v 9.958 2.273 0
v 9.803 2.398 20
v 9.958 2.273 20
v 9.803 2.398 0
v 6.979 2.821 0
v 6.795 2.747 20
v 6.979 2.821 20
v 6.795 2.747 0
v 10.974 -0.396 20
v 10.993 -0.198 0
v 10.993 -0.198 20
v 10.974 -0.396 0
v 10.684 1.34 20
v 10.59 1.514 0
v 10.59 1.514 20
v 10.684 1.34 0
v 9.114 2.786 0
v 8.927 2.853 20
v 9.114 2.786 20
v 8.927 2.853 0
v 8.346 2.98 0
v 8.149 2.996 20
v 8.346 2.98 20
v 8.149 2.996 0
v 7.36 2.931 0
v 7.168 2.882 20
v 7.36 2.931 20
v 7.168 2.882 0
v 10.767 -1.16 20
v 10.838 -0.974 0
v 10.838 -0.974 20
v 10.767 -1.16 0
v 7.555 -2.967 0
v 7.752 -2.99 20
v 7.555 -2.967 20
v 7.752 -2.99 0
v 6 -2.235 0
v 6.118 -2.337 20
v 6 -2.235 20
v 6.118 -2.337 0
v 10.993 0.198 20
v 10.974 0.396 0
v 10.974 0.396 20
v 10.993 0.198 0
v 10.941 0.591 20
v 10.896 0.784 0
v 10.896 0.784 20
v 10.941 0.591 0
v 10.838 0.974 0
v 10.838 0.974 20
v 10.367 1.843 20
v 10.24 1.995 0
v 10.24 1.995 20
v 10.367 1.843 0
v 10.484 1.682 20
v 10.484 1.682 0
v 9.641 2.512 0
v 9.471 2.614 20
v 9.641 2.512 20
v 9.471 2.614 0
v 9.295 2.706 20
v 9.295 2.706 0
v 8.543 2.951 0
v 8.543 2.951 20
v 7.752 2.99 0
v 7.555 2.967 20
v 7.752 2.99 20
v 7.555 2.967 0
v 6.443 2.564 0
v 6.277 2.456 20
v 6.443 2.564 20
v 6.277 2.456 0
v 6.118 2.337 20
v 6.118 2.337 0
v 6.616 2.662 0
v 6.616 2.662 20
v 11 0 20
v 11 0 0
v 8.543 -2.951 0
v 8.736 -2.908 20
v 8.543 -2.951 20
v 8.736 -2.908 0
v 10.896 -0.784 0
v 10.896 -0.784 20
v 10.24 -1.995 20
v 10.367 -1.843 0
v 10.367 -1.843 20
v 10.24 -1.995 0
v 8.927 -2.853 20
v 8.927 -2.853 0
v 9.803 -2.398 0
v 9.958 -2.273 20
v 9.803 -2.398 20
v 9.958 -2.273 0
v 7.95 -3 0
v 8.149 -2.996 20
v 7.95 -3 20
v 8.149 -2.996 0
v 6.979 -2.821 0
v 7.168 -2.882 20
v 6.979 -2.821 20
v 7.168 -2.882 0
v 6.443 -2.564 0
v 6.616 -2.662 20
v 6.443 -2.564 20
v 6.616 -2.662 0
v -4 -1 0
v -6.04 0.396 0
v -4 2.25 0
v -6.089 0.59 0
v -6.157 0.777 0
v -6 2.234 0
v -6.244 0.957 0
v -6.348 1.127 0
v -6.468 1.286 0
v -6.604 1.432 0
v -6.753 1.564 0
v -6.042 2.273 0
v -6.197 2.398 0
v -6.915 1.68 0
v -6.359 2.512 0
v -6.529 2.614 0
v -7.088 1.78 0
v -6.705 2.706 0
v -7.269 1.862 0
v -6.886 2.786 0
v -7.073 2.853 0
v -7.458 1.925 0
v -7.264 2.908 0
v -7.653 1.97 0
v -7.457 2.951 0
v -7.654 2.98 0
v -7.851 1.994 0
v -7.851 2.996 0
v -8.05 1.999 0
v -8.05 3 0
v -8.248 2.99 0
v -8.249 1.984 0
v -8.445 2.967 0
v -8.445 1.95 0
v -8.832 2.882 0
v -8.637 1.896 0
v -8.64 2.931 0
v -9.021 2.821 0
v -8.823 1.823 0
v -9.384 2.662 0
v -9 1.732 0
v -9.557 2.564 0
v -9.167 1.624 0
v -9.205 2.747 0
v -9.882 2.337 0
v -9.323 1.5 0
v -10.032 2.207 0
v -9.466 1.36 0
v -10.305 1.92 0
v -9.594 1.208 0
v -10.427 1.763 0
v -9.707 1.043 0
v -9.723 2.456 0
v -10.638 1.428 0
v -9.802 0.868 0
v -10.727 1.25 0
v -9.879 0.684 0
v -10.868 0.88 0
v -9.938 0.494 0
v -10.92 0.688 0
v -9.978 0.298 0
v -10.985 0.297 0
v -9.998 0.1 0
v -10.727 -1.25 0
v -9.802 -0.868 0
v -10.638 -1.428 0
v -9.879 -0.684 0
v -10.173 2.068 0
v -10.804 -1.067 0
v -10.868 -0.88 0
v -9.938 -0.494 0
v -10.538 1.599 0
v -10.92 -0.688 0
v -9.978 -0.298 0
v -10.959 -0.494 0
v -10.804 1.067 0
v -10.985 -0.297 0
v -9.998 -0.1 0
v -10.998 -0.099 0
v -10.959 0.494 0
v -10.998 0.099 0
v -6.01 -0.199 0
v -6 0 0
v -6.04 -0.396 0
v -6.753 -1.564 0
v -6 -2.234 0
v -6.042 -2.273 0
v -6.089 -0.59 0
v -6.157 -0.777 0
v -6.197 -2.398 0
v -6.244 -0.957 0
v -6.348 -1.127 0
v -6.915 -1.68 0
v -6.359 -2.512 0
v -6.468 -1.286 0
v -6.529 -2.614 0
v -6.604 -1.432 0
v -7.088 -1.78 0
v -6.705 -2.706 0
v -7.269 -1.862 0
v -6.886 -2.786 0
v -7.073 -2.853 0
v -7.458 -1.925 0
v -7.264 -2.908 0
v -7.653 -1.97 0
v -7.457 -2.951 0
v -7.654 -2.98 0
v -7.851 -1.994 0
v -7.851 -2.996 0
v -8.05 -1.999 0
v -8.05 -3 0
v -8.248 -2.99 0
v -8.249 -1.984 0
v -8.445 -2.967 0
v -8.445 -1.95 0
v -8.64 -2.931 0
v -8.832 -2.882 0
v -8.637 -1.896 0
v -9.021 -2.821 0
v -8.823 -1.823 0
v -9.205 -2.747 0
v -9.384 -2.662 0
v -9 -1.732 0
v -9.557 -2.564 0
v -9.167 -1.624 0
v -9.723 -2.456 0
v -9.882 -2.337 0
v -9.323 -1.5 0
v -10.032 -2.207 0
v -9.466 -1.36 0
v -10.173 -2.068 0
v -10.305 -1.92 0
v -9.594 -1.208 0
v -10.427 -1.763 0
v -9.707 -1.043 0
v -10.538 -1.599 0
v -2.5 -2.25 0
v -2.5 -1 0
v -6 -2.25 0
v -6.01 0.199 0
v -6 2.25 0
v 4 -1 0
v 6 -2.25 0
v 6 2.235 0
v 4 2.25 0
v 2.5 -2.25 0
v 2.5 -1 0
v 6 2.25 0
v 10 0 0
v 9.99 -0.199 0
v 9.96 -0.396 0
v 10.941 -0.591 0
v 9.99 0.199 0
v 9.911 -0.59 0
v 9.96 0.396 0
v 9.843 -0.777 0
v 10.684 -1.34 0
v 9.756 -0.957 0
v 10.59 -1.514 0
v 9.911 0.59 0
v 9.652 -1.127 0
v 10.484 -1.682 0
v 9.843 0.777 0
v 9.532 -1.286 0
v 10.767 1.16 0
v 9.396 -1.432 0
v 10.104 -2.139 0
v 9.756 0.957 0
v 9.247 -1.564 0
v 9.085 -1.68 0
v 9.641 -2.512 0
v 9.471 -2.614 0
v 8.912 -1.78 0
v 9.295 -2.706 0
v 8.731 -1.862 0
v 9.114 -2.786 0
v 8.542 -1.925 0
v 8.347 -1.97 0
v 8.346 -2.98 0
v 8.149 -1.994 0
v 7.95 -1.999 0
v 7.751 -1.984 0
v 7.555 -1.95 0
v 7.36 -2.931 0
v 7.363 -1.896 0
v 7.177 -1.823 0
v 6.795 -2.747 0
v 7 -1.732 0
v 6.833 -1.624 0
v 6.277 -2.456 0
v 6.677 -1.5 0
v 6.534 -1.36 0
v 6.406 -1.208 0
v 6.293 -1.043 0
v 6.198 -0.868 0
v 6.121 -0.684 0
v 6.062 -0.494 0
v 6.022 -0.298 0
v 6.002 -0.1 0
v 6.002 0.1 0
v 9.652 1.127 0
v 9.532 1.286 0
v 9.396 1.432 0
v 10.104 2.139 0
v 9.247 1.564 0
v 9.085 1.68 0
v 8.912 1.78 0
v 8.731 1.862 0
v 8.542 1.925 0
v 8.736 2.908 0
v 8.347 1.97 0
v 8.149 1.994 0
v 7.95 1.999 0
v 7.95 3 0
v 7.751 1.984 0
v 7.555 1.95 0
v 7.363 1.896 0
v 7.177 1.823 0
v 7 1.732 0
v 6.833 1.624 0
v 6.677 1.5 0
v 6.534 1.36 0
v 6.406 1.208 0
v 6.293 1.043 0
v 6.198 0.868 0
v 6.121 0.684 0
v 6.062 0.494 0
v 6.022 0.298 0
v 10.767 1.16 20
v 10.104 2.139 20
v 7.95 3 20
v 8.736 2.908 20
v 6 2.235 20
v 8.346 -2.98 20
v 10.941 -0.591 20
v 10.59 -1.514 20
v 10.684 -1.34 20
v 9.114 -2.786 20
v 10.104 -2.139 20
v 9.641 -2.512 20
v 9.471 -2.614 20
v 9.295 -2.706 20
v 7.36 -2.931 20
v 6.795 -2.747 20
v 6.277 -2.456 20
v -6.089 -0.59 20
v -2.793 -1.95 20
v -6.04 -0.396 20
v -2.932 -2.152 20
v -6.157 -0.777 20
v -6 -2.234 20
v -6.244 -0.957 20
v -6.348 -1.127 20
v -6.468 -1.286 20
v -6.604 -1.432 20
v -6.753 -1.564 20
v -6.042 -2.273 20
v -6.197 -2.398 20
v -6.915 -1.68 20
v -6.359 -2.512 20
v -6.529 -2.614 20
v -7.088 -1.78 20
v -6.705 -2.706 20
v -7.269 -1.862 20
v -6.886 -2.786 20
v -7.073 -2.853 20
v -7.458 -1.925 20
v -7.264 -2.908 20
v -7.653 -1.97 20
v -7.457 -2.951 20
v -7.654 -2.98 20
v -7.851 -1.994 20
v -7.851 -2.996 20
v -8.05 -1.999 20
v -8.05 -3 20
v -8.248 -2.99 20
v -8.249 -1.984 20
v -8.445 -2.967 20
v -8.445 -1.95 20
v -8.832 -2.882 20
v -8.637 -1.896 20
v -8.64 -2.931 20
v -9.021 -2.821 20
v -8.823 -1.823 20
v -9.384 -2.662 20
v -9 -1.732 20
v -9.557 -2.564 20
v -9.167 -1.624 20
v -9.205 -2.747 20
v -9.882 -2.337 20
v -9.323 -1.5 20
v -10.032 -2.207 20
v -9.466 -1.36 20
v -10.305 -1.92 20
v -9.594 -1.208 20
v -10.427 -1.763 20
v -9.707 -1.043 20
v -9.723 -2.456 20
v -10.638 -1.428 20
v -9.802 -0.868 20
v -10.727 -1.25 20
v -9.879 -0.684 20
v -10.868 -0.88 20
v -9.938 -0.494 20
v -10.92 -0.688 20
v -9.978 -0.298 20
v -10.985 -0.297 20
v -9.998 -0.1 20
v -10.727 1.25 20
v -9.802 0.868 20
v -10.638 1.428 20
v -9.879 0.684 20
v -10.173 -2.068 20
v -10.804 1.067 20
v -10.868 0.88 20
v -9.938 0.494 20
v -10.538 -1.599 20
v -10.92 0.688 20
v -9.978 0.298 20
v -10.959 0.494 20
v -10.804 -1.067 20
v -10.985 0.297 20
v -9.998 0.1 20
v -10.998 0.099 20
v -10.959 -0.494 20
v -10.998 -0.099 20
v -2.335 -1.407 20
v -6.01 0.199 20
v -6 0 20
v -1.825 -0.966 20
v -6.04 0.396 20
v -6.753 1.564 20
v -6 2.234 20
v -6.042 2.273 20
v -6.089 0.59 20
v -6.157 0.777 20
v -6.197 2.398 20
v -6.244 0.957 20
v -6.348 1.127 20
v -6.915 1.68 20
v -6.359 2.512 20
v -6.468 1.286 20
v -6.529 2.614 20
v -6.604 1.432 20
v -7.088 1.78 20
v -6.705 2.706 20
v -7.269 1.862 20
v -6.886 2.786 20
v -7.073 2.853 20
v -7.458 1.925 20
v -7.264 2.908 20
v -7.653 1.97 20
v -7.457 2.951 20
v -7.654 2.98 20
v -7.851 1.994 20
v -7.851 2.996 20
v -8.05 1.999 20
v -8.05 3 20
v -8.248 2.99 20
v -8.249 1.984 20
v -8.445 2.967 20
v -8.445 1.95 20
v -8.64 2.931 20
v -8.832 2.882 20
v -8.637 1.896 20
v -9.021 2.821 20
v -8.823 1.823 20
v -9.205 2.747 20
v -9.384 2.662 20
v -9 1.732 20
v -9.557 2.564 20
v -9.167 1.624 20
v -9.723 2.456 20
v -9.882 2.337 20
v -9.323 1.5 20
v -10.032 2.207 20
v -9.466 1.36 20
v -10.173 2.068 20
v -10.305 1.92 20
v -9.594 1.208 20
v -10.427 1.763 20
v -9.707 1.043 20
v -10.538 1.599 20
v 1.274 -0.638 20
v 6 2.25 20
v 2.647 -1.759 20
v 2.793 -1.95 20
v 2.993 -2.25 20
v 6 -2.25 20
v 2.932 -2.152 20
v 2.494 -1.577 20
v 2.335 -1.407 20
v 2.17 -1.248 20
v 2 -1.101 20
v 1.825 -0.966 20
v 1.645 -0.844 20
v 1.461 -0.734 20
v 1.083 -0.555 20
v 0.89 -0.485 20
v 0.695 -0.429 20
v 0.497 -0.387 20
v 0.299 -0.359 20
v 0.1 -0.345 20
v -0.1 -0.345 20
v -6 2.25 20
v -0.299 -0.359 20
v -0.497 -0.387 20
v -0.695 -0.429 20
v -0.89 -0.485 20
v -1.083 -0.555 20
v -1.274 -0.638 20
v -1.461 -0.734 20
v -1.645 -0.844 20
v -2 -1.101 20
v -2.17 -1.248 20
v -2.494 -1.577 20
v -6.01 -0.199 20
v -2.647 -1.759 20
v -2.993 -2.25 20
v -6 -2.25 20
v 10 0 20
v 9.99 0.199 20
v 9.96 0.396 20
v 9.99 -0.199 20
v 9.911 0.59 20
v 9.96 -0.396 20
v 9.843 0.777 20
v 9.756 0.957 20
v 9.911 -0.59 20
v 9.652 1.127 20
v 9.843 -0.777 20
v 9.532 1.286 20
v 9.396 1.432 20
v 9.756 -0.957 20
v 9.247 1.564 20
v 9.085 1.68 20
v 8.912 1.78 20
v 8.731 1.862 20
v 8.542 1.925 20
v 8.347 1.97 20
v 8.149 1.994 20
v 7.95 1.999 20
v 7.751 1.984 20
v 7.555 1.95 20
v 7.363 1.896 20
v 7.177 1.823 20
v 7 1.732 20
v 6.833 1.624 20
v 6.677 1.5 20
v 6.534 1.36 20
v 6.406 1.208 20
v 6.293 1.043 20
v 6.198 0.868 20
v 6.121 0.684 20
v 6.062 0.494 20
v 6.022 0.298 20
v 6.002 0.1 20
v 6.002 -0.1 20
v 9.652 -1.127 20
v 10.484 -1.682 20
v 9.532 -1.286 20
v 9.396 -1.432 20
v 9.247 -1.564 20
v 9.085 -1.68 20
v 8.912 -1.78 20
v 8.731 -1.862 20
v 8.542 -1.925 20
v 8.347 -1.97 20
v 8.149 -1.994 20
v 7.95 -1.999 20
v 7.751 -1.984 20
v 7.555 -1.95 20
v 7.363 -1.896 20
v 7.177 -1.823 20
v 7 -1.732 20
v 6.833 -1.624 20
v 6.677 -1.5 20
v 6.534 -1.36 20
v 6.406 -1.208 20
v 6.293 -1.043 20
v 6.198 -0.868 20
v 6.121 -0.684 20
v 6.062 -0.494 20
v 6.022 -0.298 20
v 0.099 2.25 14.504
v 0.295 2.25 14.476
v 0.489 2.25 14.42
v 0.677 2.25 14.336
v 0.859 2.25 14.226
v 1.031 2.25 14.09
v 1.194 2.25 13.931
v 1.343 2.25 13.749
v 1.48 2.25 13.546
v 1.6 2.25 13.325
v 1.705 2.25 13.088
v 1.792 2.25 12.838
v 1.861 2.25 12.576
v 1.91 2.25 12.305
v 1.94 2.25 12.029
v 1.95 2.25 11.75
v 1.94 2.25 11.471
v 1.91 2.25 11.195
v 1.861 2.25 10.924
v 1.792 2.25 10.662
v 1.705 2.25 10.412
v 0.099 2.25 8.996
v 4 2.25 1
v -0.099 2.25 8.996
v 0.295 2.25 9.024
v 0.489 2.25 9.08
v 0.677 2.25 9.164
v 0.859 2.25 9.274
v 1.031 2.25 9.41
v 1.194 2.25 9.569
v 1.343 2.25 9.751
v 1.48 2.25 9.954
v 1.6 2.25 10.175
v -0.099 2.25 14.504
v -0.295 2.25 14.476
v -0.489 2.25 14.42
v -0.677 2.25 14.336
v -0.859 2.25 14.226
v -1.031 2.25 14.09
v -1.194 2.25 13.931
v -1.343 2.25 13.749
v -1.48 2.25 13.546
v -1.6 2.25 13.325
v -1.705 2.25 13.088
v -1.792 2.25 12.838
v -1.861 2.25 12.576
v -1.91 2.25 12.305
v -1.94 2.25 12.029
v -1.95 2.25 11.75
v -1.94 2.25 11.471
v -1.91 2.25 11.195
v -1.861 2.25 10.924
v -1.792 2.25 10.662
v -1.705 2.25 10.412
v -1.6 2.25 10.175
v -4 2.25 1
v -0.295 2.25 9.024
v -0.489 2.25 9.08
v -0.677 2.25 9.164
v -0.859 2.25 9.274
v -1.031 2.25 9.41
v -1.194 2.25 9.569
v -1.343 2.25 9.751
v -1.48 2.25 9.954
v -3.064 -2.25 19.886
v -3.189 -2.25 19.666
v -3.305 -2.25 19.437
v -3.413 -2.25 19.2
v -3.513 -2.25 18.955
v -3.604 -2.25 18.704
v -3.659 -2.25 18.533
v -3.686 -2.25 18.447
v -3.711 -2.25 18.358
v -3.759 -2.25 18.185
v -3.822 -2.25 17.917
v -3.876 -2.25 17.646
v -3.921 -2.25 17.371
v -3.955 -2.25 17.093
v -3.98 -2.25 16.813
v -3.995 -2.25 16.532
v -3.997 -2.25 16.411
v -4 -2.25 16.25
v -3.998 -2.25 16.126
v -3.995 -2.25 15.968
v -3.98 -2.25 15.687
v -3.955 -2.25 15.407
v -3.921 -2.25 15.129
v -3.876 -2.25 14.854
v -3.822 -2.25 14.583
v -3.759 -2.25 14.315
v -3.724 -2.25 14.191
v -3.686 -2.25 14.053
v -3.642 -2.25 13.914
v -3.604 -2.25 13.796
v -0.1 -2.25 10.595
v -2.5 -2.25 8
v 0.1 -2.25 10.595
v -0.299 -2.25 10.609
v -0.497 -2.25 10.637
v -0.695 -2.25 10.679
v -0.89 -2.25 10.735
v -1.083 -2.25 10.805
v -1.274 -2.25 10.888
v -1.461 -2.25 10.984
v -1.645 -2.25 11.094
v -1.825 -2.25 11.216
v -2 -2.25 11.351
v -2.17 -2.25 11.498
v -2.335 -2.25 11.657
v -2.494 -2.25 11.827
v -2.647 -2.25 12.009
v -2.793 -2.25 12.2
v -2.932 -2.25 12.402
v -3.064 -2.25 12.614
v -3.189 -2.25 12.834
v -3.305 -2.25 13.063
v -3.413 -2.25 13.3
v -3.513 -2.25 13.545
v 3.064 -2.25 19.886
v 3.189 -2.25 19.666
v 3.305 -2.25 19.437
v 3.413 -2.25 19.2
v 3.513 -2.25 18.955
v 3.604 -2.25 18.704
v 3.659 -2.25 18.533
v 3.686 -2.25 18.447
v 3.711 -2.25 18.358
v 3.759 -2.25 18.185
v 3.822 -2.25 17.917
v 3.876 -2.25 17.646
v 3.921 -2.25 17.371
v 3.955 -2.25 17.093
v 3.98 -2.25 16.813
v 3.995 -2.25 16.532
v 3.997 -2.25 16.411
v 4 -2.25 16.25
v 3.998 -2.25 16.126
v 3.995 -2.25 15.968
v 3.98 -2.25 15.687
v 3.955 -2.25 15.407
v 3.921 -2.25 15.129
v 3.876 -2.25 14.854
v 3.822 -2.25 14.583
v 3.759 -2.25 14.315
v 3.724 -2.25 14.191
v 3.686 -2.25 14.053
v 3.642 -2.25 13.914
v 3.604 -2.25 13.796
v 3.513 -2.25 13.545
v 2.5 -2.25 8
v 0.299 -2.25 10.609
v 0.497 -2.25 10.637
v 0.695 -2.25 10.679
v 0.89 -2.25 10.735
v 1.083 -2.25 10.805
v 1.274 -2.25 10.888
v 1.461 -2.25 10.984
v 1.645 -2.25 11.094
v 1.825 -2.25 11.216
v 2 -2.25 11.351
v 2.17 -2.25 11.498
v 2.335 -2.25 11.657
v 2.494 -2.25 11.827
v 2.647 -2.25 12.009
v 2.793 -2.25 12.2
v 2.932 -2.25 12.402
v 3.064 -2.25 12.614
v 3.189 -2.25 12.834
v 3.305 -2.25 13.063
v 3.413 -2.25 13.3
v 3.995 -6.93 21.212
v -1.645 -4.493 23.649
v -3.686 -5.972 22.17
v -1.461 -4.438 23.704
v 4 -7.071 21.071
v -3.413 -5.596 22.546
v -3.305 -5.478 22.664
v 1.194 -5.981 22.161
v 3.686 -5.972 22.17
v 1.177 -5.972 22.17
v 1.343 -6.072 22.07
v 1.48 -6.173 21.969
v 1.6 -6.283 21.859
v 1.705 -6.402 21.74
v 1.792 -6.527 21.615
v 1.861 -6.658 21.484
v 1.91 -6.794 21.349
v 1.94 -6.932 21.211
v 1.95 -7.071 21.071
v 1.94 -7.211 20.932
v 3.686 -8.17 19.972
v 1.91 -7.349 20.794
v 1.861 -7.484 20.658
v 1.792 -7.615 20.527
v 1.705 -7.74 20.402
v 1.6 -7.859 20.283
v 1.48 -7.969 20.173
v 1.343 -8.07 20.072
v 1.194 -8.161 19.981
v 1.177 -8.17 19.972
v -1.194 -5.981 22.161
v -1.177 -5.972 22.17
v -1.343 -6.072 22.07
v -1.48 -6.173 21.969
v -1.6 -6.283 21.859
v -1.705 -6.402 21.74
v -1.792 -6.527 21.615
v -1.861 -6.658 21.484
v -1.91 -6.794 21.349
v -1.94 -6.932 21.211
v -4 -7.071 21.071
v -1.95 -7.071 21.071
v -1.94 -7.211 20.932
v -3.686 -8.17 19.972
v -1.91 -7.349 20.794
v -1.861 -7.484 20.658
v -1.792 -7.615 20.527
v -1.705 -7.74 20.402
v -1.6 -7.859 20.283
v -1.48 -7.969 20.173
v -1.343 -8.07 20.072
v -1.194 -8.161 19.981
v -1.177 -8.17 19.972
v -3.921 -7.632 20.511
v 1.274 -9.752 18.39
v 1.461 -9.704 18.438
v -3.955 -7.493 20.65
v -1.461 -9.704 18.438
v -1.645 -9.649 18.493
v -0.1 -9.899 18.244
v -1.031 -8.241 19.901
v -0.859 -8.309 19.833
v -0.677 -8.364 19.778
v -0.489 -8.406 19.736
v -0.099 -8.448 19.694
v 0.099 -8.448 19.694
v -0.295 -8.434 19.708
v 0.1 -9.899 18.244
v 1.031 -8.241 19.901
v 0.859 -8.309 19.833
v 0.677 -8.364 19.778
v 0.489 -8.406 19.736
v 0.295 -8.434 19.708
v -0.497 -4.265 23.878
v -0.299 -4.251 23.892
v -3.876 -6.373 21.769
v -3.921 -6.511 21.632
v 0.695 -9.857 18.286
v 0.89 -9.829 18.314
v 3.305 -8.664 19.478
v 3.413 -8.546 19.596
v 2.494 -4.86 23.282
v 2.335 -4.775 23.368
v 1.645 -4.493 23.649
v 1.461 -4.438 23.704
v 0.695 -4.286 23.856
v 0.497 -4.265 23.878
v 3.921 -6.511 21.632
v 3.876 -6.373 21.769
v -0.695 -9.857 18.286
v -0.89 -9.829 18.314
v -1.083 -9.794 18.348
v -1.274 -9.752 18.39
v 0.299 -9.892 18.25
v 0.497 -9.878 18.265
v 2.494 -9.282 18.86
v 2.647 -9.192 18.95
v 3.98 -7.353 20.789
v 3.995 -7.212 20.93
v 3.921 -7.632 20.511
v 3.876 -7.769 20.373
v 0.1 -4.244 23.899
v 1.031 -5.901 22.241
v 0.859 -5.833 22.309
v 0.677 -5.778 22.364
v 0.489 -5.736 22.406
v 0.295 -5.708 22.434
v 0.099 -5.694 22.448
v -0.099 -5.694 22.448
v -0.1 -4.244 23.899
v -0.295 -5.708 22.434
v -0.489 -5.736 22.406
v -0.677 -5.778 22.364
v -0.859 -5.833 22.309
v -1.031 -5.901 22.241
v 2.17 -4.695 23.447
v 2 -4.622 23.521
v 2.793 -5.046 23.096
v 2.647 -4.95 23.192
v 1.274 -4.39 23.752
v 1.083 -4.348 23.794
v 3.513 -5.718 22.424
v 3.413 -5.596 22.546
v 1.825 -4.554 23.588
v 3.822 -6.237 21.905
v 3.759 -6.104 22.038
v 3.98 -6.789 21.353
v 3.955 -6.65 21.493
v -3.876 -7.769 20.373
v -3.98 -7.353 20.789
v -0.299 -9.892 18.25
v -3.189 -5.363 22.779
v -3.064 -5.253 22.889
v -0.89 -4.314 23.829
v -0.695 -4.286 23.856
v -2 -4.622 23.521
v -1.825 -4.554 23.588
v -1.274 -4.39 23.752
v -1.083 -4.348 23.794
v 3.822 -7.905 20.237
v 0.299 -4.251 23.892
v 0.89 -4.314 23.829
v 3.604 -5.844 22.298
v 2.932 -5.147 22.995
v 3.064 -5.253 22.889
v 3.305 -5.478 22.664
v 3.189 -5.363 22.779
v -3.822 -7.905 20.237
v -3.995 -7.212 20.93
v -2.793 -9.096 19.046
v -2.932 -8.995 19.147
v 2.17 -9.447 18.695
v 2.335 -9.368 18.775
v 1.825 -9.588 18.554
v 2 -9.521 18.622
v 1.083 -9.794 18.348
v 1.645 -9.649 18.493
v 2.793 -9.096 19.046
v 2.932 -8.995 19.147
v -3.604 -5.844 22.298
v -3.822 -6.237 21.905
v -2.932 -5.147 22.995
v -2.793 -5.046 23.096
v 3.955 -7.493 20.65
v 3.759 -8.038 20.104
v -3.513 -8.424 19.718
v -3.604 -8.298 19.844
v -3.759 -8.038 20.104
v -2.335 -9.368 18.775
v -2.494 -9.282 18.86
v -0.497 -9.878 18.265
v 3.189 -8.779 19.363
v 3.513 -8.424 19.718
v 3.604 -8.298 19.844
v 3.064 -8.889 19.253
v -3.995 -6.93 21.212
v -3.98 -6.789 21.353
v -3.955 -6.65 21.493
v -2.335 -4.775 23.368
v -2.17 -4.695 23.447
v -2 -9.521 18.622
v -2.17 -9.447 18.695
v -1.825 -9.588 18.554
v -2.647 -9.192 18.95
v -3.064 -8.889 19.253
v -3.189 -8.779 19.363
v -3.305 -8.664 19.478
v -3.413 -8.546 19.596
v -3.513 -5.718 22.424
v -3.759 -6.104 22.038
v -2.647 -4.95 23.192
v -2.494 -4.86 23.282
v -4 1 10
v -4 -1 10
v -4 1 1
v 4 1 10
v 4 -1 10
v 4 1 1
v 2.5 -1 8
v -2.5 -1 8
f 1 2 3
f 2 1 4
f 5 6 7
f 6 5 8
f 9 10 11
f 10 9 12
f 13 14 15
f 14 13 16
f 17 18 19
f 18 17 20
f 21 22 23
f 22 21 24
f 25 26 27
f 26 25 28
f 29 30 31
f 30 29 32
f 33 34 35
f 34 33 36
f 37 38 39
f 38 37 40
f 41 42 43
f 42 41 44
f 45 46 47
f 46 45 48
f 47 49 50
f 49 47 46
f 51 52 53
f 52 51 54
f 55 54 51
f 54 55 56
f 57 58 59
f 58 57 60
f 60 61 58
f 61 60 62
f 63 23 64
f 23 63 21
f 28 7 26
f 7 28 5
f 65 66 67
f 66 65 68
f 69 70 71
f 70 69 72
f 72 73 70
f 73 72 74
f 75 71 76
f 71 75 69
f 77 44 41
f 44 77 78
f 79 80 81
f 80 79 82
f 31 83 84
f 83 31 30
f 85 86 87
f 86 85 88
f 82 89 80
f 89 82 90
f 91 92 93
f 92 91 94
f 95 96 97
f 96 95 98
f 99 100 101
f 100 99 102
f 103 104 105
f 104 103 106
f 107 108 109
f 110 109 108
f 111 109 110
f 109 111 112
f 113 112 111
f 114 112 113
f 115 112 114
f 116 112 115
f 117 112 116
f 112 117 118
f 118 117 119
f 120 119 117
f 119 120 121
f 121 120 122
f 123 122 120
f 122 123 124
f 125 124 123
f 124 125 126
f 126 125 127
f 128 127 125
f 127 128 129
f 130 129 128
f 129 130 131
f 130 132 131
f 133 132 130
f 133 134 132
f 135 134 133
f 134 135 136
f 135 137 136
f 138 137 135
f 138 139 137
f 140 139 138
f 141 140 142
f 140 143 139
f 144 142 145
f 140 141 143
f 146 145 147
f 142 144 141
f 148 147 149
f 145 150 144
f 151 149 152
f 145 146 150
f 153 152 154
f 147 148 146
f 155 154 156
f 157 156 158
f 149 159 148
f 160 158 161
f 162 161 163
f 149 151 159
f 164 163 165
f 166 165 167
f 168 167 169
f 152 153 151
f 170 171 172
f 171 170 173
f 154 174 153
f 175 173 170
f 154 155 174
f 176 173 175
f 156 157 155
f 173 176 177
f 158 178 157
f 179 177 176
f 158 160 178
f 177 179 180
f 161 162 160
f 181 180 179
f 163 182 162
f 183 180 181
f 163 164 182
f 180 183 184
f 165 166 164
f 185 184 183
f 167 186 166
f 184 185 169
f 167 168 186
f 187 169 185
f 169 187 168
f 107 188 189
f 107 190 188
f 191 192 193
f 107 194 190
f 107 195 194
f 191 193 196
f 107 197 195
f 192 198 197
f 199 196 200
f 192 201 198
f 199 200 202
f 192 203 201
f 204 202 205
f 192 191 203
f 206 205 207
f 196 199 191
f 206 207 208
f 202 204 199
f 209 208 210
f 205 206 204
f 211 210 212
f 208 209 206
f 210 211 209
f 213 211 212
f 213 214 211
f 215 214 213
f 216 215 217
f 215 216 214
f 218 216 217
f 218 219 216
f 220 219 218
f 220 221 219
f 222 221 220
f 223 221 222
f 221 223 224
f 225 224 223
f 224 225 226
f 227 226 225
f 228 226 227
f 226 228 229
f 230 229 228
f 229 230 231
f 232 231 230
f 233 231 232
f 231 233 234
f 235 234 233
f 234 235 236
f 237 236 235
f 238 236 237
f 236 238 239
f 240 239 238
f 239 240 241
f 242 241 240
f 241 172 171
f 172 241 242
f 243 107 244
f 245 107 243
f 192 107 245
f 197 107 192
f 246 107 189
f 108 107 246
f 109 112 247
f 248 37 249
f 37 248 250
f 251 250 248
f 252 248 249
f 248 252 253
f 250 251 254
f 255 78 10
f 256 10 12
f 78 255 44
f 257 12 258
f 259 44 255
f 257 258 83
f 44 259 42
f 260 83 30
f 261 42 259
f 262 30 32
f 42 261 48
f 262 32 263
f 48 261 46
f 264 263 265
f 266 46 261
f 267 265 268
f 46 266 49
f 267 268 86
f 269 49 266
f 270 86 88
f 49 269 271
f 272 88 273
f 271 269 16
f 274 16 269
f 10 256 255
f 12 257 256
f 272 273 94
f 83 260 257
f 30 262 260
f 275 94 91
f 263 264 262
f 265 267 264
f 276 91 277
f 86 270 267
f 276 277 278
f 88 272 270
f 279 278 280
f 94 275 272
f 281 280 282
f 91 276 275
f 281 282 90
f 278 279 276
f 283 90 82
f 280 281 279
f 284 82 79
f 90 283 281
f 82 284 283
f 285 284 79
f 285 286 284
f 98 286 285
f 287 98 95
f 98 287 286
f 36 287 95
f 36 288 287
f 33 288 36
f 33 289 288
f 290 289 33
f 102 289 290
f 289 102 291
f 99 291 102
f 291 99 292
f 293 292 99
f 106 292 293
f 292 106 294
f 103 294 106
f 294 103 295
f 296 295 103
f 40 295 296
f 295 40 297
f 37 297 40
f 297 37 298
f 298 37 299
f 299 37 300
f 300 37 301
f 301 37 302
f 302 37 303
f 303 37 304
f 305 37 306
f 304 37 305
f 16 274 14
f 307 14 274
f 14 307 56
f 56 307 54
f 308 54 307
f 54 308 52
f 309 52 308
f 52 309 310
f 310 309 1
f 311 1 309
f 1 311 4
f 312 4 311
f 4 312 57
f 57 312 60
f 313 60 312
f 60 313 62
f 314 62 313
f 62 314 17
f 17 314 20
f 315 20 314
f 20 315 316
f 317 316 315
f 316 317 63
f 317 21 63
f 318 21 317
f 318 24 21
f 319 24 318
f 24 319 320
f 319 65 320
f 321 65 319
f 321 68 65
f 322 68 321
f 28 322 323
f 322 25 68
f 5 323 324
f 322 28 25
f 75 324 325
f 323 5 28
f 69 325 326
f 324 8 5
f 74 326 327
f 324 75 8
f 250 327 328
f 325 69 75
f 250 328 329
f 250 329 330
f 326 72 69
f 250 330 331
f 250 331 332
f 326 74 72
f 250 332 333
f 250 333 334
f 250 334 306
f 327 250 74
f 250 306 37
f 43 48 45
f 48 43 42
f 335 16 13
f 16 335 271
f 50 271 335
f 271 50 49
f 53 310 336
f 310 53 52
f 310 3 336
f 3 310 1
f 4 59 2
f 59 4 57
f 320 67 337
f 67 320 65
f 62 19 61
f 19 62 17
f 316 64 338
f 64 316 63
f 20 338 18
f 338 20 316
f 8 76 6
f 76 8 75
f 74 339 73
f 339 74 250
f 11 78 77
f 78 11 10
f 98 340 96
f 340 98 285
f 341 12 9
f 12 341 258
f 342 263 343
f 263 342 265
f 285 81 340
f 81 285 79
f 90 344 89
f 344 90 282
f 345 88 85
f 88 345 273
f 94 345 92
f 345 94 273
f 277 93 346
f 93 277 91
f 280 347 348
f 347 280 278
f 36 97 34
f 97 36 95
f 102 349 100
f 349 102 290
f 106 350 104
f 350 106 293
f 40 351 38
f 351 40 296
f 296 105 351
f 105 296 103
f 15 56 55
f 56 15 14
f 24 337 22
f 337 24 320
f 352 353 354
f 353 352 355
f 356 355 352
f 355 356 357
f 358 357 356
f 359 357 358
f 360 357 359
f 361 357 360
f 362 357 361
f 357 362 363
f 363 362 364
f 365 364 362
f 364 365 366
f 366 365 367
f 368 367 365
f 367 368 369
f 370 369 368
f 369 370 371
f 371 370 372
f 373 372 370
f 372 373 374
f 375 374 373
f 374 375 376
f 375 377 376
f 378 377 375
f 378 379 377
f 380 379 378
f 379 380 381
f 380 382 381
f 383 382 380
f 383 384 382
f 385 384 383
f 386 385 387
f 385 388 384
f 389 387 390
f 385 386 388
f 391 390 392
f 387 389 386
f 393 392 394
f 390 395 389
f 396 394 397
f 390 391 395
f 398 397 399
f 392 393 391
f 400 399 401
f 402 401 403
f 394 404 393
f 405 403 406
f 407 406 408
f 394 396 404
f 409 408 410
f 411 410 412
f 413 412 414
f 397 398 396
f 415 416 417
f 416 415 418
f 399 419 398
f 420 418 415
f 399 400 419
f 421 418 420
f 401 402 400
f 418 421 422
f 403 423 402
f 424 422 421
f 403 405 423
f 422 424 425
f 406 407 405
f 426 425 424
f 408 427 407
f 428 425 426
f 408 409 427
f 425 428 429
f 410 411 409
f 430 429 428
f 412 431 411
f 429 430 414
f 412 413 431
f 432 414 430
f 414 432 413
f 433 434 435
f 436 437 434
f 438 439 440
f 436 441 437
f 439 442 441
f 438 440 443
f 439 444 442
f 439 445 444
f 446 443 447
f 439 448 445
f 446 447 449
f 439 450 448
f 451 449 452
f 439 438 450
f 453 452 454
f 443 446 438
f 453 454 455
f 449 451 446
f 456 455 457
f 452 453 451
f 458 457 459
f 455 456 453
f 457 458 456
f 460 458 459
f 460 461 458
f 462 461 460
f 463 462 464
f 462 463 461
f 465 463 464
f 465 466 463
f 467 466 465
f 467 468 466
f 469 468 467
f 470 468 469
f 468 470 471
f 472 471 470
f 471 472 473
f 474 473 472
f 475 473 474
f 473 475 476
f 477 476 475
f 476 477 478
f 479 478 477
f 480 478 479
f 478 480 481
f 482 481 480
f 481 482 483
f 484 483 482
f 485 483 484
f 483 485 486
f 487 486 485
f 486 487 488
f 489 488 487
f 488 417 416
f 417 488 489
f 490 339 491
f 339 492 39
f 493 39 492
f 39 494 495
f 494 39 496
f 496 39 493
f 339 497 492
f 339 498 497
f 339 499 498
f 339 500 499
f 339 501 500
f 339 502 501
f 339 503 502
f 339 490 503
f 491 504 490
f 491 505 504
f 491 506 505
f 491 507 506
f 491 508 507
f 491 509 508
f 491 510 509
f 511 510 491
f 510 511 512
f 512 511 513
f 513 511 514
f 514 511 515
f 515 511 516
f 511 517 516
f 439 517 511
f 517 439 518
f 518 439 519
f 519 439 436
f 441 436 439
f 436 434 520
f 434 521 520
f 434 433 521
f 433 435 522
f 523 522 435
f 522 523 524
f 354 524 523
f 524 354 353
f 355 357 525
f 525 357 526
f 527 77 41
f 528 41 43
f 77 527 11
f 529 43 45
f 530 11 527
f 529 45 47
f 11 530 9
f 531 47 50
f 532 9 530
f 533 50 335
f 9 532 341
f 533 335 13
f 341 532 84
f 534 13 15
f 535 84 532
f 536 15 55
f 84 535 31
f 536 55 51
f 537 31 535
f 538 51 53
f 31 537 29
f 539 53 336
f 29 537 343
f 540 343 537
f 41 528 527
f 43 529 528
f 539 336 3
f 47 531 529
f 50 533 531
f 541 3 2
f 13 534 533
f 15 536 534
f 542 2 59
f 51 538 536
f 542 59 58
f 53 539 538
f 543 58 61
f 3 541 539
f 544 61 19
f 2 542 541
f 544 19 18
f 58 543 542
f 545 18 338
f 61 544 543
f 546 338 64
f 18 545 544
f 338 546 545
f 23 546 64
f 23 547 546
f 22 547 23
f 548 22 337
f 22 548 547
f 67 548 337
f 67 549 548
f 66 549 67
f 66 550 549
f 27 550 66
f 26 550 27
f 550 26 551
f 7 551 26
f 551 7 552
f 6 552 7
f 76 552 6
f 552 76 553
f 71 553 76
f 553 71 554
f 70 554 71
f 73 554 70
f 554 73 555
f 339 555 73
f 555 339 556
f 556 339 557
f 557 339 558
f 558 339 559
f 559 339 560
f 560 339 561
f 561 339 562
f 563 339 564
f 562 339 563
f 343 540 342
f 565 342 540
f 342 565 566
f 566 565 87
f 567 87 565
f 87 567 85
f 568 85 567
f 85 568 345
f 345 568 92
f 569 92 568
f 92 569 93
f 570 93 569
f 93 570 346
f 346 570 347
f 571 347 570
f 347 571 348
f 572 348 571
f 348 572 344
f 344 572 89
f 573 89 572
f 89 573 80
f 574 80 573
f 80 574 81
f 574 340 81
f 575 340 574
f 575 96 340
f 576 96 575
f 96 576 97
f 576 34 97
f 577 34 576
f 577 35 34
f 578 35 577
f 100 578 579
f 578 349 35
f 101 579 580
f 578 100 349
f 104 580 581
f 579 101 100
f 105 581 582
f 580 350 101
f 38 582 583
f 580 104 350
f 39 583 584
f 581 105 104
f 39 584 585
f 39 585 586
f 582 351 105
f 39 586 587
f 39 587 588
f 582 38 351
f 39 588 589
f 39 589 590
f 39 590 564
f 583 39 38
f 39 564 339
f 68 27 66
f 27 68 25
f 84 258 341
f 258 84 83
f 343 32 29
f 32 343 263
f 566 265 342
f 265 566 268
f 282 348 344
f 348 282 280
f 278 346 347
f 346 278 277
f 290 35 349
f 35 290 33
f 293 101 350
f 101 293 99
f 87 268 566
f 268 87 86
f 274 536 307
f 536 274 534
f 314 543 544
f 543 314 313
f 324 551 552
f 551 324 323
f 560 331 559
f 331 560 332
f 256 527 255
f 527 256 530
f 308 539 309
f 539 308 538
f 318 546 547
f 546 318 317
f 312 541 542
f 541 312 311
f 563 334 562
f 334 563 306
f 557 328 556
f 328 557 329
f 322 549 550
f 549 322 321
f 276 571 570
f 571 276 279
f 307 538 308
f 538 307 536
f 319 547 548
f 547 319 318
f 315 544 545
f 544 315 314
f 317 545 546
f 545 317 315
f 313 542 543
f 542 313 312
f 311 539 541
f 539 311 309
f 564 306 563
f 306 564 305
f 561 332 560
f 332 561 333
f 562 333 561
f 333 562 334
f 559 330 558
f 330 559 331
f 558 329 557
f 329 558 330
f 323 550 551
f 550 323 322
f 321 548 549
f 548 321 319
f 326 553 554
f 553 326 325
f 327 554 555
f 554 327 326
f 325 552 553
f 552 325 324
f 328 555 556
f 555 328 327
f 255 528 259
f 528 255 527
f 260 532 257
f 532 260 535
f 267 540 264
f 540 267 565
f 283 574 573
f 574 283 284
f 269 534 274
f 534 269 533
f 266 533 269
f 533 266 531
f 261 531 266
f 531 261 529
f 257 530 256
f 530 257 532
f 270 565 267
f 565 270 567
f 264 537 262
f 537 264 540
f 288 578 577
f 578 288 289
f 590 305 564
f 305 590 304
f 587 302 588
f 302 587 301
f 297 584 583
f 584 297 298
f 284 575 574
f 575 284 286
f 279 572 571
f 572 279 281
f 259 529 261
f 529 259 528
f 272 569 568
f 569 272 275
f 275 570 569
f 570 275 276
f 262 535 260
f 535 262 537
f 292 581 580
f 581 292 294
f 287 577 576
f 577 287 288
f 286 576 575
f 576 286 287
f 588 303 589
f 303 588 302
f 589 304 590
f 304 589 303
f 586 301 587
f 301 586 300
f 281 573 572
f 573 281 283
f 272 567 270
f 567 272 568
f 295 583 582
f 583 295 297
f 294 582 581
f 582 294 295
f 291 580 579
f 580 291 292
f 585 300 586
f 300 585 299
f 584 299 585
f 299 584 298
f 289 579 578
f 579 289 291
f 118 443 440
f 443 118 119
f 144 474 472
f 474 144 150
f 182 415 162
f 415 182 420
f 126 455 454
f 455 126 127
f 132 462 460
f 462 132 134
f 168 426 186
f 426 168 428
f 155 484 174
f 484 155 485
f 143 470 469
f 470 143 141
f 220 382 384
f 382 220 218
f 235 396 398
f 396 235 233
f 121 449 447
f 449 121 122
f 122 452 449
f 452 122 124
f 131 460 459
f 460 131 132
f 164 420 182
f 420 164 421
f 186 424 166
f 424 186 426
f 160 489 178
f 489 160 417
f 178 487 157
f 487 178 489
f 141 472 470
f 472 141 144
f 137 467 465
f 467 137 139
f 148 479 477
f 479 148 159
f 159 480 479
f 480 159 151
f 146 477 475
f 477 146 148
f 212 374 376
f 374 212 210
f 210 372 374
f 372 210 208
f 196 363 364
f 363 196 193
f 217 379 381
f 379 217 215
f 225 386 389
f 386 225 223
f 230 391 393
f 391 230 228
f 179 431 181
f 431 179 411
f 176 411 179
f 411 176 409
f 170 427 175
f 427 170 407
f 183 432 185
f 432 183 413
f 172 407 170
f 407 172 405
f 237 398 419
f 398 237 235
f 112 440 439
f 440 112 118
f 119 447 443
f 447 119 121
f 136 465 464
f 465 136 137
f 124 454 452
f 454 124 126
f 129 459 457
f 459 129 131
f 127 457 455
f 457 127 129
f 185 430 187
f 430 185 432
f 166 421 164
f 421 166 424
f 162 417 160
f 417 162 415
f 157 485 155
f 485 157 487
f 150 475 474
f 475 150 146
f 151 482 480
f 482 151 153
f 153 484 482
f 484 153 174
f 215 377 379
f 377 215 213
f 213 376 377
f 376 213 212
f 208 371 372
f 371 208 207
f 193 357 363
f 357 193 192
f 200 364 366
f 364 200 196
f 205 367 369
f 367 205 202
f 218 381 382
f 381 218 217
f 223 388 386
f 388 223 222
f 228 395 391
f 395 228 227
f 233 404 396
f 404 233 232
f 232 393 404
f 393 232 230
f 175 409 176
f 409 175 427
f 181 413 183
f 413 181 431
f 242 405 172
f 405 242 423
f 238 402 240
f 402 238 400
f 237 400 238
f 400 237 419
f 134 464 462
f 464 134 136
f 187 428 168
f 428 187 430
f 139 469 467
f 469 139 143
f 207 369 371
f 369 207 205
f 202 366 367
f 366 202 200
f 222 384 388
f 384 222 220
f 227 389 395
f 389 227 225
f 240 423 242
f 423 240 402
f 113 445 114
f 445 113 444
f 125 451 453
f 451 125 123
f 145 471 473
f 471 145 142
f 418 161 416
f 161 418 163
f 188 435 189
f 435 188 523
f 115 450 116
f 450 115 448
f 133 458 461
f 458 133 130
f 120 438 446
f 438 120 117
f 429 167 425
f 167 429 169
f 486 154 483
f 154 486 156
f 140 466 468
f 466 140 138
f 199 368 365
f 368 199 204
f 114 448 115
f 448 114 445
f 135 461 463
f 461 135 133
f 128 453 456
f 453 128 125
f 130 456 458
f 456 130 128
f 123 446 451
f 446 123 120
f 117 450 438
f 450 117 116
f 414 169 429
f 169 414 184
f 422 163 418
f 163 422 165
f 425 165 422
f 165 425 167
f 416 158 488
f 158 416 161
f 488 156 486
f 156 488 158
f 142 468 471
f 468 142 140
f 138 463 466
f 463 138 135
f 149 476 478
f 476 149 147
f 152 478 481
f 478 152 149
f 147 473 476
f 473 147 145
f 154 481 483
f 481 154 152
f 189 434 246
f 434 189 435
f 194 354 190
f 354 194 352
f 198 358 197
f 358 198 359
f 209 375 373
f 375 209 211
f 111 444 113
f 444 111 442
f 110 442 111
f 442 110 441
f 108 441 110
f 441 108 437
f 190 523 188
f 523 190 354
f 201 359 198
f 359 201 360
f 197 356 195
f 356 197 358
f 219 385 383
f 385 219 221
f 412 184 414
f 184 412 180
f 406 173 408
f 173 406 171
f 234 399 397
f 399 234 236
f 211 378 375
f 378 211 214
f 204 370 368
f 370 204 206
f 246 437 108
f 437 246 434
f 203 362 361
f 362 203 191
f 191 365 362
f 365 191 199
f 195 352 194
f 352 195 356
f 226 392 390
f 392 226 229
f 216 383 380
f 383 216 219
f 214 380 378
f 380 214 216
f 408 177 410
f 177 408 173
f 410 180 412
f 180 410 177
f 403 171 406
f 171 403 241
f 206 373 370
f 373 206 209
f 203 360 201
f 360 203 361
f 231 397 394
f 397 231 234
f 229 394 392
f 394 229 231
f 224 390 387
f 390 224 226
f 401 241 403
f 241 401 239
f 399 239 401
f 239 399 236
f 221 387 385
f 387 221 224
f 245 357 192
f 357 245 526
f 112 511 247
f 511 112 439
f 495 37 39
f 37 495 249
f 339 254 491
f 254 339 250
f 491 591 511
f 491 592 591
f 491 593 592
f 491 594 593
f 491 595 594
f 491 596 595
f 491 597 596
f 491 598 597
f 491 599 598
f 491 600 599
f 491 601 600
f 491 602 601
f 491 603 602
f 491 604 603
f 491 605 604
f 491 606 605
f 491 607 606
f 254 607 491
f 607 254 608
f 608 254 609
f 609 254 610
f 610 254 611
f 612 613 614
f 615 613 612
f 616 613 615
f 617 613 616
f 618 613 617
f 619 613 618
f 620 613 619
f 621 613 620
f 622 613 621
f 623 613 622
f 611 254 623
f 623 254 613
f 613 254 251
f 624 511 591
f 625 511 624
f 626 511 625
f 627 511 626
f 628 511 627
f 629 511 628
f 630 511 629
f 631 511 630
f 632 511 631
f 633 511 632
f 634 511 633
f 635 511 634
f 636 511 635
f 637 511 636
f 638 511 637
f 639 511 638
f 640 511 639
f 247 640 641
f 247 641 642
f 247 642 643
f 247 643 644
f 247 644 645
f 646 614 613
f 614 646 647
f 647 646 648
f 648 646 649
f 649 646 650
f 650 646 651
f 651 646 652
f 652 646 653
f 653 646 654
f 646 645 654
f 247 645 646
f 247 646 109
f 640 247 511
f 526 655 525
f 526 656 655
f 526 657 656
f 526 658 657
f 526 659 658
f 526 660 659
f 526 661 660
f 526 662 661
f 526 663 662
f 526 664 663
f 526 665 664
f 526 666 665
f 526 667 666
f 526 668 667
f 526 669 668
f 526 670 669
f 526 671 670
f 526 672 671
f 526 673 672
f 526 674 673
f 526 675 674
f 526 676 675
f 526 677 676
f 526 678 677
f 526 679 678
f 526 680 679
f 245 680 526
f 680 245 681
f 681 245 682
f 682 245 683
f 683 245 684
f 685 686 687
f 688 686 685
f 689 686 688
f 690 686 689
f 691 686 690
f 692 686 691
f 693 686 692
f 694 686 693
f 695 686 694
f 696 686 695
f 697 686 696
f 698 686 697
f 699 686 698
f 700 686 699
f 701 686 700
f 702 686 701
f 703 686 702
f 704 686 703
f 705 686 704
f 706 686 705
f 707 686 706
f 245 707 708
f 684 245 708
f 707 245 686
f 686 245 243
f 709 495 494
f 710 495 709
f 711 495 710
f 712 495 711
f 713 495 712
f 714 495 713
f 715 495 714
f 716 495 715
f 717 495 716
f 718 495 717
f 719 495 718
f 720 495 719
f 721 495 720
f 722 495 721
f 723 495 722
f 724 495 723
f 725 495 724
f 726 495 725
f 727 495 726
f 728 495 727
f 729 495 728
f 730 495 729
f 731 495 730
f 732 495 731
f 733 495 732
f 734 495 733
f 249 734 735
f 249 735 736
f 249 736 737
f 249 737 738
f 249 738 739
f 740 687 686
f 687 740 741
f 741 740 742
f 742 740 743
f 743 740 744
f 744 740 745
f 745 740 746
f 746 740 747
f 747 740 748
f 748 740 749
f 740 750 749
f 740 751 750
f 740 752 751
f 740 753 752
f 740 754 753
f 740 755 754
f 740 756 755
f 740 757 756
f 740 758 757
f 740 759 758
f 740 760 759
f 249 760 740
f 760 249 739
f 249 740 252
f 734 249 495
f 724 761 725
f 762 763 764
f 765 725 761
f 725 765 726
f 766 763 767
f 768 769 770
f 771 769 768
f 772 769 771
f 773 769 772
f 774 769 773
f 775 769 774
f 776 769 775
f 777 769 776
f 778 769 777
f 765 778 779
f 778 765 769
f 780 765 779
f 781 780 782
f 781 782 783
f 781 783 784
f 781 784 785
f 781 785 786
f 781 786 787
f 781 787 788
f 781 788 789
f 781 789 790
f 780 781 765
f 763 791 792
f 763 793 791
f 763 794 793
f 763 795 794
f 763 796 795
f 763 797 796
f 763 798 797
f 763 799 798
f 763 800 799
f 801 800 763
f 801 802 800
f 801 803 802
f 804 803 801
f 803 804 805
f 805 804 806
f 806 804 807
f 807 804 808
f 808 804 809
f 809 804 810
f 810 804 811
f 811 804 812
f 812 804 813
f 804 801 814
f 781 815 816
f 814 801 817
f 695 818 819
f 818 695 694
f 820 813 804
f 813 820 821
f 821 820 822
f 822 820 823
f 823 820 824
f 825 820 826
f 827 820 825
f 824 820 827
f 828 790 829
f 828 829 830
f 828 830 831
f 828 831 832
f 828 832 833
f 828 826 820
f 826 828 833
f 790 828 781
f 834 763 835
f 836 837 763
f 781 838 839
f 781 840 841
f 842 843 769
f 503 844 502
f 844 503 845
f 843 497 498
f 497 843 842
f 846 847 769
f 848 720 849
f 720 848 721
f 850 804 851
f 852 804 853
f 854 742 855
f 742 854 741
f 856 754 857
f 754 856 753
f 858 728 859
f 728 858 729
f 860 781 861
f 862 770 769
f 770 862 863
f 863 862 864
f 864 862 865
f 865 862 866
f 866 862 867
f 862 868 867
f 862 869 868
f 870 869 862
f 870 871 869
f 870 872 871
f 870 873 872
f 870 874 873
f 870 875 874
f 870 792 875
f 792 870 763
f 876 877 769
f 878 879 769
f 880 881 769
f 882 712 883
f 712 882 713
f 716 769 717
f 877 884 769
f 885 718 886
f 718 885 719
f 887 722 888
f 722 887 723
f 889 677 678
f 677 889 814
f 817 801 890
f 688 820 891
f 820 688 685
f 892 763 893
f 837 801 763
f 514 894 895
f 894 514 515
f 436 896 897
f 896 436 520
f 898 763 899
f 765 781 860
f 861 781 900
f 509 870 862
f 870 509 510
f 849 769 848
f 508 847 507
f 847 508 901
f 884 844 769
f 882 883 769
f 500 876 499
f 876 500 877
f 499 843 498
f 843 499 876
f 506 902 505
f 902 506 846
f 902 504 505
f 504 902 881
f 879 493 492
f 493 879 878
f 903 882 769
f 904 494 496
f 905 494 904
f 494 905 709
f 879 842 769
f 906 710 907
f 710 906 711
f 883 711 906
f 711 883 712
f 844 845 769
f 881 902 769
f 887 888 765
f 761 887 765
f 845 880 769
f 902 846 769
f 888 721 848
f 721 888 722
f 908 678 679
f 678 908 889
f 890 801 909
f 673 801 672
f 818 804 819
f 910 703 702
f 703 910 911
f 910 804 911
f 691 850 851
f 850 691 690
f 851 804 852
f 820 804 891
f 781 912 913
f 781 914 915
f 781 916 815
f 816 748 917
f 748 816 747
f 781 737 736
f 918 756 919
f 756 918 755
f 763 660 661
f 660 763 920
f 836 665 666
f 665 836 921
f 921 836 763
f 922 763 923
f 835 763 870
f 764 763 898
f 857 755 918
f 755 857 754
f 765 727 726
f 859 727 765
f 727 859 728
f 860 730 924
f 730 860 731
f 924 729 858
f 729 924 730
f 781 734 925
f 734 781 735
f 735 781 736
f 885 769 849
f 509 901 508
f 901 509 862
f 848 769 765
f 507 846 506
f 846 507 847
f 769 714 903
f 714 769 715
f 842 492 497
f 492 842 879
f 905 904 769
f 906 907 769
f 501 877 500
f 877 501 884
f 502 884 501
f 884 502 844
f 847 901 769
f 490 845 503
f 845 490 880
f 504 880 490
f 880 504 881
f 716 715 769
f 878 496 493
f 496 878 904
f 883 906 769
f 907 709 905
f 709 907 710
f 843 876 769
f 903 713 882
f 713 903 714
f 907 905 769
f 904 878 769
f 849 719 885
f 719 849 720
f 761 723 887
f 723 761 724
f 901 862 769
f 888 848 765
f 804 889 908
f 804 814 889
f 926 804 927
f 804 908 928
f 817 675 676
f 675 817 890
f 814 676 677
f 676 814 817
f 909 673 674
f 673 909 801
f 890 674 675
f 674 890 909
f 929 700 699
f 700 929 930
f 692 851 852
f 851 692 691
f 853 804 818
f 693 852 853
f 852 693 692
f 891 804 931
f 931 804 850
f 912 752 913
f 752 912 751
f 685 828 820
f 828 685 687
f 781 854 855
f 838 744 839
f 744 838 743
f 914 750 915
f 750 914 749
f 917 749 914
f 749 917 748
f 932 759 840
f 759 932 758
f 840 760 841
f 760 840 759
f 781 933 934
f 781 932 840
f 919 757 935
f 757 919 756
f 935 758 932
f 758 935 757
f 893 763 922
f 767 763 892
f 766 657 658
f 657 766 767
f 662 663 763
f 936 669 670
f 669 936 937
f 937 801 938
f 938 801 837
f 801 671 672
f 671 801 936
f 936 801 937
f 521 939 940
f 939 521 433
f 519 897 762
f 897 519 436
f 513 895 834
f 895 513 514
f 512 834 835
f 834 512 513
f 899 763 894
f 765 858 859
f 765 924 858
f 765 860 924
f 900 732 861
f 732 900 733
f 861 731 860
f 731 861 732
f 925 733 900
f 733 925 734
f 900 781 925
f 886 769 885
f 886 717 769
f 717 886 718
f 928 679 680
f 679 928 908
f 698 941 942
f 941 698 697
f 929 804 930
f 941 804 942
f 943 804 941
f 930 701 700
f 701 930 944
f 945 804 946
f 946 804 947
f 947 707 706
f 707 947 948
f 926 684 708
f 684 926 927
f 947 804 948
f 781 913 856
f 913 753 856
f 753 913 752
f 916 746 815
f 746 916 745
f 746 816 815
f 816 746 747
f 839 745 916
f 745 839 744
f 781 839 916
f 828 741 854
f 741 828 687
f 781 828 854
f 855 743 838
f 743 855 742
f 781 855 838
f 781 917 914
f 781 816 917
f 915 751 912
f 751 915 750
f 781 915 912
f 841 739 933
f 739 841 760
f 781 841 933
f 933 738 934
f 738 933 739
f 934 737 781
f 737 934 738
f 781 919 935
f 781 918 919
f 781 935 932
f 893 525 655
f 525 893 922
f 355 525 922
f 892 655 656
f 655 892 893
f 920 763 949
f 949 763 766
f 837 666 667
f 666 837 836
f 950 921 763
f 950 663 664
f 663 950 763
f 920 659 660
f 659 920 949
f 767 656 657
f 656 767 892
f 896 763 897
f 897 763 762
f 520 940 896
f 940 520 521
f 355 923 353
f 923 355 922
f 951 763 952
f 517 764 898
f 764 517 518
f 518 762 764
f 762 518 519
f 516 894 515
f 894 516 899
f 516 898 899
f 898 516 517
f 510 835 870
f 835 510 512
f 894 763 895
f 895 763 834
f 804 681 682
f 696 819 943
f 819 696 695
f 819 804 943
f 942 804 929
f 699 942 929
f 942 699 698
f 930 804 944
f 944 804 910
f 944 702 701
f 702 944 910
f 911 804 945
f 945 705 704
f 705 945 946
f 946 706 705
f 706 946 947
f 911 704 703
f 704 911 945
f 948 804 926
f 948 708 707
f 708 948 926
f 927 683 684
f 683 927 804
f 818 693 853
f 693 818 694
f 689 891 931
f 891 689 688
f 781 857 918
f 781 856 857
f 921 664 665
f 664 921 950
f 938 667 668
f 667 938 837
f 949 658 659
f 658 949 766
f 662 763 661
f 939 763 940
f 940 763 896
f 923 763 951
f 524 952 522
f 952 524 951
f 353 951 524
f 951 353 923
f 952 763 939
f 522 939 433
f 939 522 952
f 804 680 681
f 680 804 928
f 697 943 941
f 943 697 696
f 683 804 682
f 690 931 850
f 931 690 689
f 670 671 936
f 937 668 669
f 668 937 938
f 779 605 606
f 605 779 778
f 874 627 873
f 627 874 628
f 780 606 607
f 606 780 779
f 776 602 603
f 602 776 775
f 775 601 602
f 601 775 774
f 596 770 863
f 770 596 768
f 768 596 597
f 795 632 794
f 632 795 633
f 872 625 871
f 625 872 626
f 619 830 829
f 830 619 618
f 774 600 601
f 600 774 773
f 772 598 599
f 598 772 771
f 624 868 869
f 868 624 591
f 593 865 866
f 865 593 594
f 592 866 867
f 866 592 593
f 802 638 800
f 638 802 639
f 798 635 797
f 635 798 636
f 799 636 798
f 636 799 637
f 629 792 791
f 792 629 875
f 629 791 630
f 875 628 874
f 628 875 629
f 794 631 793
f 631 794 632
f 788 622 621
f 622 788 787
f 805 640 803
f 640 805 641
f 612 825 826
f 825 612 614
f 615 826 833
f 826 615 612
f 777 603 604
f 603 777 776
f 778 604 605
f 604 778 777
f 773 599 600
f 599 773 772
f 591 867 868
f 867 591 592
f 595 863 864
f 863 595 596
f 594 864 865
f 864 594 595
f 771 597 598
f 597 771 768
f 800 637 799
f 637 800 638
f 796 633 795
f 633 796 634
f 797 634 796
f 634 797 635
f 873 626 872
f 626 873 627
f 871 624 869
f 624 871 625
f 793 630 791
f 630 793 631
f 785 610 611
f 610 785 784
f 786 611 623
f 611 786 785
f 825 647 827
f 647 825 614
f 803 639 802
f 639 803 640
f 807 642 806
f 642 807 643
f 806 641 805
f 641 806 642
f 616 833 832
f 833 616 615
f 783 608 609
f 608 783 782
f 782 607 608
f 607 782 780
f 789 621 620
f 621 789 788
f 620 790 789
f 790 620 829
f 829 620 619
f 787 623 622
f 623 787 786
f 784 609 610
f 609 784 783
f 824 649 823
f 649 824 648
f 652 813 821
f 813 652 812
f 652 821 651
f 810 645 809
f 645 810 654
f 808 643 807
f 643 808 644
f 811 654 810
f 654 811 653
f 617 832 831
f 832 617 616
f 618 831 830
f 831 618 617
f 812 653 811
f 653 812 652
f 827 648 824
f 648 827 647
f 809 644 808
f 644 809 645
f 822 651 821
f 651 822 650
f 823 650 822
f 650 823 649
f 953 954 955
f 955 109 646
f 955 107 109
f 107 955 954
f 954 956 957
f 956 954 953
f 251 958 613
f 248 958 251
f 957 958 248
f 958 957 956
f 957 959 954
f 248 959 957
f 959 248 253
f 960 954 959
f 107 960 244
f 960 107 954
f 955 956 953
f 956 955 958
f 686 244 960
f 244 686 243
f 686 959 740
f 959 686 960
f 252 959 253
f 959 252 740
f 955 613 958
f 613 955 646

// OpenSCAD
$fs = $preview ? 0.5 : 0.2;
$fa = $preview ? 10 : 2;

// standoff
d1 = 4;
d2 = 6;
h = 20;
d = 16;
w = 4.5;

// antenna holder
d3 = 3.9;
d4 = 8;
l = 10;
b0 = 14;
a = 45;

// led cut
hl1 = 10;
wl1 = 8;
dl1 = 2;
hl2 = 8;
wl2 = 5;
hl3 = 1;

eps = 0.1;


translate([d / 2, 0, 0]) stand();
translate([-d / 2, 0, 0]) stand();


difference() {
    union() {
        translate([-d / 2 + d1 / 2, -w / 2, 0]) 
            cube([d - d1, w, h]);
        translate([0, 0, b0])
            rotate([a, 0, 0])
                translate([0, 0, -d4 * sin(a)])
                    cylinder(d = d4, h = l + d4 * sin(a));
    }
    // antenna holder cut
    translate([0, 0, b0])
        rotate([a, 0, 0])
            translate([0, 0, -d4 * sin(a) - eps])
                cylinder(d = d3, h = l + d4 * sin(a) + 2 * eps);
    
    translate([-d /2 + d1 / 2, w / 2, 0])
        cube([d - d1, d4, h]);
    // led cut
    translate([-wl1 / 2, -dl1 / 2, -eps])
        cube([wl1, dl1, hl1 + eps]);
    translate([-wl2 / 2, -d2 / 2 - eps, -eps])
        cube([wl2, d2 / 2 + eps, hl2 + eps]);
    translate([-wl1 / 2, 0, -eps])
        cube([wl1, d2 / 2 + eps, hl3 + eps]);
}

module stand() {
    difference() {
        cylinder(h = h, d = d2);
        translate([0, 0, -eps])
            cylinder(h = h + 2 * eps, d = d1);
    }   
}
